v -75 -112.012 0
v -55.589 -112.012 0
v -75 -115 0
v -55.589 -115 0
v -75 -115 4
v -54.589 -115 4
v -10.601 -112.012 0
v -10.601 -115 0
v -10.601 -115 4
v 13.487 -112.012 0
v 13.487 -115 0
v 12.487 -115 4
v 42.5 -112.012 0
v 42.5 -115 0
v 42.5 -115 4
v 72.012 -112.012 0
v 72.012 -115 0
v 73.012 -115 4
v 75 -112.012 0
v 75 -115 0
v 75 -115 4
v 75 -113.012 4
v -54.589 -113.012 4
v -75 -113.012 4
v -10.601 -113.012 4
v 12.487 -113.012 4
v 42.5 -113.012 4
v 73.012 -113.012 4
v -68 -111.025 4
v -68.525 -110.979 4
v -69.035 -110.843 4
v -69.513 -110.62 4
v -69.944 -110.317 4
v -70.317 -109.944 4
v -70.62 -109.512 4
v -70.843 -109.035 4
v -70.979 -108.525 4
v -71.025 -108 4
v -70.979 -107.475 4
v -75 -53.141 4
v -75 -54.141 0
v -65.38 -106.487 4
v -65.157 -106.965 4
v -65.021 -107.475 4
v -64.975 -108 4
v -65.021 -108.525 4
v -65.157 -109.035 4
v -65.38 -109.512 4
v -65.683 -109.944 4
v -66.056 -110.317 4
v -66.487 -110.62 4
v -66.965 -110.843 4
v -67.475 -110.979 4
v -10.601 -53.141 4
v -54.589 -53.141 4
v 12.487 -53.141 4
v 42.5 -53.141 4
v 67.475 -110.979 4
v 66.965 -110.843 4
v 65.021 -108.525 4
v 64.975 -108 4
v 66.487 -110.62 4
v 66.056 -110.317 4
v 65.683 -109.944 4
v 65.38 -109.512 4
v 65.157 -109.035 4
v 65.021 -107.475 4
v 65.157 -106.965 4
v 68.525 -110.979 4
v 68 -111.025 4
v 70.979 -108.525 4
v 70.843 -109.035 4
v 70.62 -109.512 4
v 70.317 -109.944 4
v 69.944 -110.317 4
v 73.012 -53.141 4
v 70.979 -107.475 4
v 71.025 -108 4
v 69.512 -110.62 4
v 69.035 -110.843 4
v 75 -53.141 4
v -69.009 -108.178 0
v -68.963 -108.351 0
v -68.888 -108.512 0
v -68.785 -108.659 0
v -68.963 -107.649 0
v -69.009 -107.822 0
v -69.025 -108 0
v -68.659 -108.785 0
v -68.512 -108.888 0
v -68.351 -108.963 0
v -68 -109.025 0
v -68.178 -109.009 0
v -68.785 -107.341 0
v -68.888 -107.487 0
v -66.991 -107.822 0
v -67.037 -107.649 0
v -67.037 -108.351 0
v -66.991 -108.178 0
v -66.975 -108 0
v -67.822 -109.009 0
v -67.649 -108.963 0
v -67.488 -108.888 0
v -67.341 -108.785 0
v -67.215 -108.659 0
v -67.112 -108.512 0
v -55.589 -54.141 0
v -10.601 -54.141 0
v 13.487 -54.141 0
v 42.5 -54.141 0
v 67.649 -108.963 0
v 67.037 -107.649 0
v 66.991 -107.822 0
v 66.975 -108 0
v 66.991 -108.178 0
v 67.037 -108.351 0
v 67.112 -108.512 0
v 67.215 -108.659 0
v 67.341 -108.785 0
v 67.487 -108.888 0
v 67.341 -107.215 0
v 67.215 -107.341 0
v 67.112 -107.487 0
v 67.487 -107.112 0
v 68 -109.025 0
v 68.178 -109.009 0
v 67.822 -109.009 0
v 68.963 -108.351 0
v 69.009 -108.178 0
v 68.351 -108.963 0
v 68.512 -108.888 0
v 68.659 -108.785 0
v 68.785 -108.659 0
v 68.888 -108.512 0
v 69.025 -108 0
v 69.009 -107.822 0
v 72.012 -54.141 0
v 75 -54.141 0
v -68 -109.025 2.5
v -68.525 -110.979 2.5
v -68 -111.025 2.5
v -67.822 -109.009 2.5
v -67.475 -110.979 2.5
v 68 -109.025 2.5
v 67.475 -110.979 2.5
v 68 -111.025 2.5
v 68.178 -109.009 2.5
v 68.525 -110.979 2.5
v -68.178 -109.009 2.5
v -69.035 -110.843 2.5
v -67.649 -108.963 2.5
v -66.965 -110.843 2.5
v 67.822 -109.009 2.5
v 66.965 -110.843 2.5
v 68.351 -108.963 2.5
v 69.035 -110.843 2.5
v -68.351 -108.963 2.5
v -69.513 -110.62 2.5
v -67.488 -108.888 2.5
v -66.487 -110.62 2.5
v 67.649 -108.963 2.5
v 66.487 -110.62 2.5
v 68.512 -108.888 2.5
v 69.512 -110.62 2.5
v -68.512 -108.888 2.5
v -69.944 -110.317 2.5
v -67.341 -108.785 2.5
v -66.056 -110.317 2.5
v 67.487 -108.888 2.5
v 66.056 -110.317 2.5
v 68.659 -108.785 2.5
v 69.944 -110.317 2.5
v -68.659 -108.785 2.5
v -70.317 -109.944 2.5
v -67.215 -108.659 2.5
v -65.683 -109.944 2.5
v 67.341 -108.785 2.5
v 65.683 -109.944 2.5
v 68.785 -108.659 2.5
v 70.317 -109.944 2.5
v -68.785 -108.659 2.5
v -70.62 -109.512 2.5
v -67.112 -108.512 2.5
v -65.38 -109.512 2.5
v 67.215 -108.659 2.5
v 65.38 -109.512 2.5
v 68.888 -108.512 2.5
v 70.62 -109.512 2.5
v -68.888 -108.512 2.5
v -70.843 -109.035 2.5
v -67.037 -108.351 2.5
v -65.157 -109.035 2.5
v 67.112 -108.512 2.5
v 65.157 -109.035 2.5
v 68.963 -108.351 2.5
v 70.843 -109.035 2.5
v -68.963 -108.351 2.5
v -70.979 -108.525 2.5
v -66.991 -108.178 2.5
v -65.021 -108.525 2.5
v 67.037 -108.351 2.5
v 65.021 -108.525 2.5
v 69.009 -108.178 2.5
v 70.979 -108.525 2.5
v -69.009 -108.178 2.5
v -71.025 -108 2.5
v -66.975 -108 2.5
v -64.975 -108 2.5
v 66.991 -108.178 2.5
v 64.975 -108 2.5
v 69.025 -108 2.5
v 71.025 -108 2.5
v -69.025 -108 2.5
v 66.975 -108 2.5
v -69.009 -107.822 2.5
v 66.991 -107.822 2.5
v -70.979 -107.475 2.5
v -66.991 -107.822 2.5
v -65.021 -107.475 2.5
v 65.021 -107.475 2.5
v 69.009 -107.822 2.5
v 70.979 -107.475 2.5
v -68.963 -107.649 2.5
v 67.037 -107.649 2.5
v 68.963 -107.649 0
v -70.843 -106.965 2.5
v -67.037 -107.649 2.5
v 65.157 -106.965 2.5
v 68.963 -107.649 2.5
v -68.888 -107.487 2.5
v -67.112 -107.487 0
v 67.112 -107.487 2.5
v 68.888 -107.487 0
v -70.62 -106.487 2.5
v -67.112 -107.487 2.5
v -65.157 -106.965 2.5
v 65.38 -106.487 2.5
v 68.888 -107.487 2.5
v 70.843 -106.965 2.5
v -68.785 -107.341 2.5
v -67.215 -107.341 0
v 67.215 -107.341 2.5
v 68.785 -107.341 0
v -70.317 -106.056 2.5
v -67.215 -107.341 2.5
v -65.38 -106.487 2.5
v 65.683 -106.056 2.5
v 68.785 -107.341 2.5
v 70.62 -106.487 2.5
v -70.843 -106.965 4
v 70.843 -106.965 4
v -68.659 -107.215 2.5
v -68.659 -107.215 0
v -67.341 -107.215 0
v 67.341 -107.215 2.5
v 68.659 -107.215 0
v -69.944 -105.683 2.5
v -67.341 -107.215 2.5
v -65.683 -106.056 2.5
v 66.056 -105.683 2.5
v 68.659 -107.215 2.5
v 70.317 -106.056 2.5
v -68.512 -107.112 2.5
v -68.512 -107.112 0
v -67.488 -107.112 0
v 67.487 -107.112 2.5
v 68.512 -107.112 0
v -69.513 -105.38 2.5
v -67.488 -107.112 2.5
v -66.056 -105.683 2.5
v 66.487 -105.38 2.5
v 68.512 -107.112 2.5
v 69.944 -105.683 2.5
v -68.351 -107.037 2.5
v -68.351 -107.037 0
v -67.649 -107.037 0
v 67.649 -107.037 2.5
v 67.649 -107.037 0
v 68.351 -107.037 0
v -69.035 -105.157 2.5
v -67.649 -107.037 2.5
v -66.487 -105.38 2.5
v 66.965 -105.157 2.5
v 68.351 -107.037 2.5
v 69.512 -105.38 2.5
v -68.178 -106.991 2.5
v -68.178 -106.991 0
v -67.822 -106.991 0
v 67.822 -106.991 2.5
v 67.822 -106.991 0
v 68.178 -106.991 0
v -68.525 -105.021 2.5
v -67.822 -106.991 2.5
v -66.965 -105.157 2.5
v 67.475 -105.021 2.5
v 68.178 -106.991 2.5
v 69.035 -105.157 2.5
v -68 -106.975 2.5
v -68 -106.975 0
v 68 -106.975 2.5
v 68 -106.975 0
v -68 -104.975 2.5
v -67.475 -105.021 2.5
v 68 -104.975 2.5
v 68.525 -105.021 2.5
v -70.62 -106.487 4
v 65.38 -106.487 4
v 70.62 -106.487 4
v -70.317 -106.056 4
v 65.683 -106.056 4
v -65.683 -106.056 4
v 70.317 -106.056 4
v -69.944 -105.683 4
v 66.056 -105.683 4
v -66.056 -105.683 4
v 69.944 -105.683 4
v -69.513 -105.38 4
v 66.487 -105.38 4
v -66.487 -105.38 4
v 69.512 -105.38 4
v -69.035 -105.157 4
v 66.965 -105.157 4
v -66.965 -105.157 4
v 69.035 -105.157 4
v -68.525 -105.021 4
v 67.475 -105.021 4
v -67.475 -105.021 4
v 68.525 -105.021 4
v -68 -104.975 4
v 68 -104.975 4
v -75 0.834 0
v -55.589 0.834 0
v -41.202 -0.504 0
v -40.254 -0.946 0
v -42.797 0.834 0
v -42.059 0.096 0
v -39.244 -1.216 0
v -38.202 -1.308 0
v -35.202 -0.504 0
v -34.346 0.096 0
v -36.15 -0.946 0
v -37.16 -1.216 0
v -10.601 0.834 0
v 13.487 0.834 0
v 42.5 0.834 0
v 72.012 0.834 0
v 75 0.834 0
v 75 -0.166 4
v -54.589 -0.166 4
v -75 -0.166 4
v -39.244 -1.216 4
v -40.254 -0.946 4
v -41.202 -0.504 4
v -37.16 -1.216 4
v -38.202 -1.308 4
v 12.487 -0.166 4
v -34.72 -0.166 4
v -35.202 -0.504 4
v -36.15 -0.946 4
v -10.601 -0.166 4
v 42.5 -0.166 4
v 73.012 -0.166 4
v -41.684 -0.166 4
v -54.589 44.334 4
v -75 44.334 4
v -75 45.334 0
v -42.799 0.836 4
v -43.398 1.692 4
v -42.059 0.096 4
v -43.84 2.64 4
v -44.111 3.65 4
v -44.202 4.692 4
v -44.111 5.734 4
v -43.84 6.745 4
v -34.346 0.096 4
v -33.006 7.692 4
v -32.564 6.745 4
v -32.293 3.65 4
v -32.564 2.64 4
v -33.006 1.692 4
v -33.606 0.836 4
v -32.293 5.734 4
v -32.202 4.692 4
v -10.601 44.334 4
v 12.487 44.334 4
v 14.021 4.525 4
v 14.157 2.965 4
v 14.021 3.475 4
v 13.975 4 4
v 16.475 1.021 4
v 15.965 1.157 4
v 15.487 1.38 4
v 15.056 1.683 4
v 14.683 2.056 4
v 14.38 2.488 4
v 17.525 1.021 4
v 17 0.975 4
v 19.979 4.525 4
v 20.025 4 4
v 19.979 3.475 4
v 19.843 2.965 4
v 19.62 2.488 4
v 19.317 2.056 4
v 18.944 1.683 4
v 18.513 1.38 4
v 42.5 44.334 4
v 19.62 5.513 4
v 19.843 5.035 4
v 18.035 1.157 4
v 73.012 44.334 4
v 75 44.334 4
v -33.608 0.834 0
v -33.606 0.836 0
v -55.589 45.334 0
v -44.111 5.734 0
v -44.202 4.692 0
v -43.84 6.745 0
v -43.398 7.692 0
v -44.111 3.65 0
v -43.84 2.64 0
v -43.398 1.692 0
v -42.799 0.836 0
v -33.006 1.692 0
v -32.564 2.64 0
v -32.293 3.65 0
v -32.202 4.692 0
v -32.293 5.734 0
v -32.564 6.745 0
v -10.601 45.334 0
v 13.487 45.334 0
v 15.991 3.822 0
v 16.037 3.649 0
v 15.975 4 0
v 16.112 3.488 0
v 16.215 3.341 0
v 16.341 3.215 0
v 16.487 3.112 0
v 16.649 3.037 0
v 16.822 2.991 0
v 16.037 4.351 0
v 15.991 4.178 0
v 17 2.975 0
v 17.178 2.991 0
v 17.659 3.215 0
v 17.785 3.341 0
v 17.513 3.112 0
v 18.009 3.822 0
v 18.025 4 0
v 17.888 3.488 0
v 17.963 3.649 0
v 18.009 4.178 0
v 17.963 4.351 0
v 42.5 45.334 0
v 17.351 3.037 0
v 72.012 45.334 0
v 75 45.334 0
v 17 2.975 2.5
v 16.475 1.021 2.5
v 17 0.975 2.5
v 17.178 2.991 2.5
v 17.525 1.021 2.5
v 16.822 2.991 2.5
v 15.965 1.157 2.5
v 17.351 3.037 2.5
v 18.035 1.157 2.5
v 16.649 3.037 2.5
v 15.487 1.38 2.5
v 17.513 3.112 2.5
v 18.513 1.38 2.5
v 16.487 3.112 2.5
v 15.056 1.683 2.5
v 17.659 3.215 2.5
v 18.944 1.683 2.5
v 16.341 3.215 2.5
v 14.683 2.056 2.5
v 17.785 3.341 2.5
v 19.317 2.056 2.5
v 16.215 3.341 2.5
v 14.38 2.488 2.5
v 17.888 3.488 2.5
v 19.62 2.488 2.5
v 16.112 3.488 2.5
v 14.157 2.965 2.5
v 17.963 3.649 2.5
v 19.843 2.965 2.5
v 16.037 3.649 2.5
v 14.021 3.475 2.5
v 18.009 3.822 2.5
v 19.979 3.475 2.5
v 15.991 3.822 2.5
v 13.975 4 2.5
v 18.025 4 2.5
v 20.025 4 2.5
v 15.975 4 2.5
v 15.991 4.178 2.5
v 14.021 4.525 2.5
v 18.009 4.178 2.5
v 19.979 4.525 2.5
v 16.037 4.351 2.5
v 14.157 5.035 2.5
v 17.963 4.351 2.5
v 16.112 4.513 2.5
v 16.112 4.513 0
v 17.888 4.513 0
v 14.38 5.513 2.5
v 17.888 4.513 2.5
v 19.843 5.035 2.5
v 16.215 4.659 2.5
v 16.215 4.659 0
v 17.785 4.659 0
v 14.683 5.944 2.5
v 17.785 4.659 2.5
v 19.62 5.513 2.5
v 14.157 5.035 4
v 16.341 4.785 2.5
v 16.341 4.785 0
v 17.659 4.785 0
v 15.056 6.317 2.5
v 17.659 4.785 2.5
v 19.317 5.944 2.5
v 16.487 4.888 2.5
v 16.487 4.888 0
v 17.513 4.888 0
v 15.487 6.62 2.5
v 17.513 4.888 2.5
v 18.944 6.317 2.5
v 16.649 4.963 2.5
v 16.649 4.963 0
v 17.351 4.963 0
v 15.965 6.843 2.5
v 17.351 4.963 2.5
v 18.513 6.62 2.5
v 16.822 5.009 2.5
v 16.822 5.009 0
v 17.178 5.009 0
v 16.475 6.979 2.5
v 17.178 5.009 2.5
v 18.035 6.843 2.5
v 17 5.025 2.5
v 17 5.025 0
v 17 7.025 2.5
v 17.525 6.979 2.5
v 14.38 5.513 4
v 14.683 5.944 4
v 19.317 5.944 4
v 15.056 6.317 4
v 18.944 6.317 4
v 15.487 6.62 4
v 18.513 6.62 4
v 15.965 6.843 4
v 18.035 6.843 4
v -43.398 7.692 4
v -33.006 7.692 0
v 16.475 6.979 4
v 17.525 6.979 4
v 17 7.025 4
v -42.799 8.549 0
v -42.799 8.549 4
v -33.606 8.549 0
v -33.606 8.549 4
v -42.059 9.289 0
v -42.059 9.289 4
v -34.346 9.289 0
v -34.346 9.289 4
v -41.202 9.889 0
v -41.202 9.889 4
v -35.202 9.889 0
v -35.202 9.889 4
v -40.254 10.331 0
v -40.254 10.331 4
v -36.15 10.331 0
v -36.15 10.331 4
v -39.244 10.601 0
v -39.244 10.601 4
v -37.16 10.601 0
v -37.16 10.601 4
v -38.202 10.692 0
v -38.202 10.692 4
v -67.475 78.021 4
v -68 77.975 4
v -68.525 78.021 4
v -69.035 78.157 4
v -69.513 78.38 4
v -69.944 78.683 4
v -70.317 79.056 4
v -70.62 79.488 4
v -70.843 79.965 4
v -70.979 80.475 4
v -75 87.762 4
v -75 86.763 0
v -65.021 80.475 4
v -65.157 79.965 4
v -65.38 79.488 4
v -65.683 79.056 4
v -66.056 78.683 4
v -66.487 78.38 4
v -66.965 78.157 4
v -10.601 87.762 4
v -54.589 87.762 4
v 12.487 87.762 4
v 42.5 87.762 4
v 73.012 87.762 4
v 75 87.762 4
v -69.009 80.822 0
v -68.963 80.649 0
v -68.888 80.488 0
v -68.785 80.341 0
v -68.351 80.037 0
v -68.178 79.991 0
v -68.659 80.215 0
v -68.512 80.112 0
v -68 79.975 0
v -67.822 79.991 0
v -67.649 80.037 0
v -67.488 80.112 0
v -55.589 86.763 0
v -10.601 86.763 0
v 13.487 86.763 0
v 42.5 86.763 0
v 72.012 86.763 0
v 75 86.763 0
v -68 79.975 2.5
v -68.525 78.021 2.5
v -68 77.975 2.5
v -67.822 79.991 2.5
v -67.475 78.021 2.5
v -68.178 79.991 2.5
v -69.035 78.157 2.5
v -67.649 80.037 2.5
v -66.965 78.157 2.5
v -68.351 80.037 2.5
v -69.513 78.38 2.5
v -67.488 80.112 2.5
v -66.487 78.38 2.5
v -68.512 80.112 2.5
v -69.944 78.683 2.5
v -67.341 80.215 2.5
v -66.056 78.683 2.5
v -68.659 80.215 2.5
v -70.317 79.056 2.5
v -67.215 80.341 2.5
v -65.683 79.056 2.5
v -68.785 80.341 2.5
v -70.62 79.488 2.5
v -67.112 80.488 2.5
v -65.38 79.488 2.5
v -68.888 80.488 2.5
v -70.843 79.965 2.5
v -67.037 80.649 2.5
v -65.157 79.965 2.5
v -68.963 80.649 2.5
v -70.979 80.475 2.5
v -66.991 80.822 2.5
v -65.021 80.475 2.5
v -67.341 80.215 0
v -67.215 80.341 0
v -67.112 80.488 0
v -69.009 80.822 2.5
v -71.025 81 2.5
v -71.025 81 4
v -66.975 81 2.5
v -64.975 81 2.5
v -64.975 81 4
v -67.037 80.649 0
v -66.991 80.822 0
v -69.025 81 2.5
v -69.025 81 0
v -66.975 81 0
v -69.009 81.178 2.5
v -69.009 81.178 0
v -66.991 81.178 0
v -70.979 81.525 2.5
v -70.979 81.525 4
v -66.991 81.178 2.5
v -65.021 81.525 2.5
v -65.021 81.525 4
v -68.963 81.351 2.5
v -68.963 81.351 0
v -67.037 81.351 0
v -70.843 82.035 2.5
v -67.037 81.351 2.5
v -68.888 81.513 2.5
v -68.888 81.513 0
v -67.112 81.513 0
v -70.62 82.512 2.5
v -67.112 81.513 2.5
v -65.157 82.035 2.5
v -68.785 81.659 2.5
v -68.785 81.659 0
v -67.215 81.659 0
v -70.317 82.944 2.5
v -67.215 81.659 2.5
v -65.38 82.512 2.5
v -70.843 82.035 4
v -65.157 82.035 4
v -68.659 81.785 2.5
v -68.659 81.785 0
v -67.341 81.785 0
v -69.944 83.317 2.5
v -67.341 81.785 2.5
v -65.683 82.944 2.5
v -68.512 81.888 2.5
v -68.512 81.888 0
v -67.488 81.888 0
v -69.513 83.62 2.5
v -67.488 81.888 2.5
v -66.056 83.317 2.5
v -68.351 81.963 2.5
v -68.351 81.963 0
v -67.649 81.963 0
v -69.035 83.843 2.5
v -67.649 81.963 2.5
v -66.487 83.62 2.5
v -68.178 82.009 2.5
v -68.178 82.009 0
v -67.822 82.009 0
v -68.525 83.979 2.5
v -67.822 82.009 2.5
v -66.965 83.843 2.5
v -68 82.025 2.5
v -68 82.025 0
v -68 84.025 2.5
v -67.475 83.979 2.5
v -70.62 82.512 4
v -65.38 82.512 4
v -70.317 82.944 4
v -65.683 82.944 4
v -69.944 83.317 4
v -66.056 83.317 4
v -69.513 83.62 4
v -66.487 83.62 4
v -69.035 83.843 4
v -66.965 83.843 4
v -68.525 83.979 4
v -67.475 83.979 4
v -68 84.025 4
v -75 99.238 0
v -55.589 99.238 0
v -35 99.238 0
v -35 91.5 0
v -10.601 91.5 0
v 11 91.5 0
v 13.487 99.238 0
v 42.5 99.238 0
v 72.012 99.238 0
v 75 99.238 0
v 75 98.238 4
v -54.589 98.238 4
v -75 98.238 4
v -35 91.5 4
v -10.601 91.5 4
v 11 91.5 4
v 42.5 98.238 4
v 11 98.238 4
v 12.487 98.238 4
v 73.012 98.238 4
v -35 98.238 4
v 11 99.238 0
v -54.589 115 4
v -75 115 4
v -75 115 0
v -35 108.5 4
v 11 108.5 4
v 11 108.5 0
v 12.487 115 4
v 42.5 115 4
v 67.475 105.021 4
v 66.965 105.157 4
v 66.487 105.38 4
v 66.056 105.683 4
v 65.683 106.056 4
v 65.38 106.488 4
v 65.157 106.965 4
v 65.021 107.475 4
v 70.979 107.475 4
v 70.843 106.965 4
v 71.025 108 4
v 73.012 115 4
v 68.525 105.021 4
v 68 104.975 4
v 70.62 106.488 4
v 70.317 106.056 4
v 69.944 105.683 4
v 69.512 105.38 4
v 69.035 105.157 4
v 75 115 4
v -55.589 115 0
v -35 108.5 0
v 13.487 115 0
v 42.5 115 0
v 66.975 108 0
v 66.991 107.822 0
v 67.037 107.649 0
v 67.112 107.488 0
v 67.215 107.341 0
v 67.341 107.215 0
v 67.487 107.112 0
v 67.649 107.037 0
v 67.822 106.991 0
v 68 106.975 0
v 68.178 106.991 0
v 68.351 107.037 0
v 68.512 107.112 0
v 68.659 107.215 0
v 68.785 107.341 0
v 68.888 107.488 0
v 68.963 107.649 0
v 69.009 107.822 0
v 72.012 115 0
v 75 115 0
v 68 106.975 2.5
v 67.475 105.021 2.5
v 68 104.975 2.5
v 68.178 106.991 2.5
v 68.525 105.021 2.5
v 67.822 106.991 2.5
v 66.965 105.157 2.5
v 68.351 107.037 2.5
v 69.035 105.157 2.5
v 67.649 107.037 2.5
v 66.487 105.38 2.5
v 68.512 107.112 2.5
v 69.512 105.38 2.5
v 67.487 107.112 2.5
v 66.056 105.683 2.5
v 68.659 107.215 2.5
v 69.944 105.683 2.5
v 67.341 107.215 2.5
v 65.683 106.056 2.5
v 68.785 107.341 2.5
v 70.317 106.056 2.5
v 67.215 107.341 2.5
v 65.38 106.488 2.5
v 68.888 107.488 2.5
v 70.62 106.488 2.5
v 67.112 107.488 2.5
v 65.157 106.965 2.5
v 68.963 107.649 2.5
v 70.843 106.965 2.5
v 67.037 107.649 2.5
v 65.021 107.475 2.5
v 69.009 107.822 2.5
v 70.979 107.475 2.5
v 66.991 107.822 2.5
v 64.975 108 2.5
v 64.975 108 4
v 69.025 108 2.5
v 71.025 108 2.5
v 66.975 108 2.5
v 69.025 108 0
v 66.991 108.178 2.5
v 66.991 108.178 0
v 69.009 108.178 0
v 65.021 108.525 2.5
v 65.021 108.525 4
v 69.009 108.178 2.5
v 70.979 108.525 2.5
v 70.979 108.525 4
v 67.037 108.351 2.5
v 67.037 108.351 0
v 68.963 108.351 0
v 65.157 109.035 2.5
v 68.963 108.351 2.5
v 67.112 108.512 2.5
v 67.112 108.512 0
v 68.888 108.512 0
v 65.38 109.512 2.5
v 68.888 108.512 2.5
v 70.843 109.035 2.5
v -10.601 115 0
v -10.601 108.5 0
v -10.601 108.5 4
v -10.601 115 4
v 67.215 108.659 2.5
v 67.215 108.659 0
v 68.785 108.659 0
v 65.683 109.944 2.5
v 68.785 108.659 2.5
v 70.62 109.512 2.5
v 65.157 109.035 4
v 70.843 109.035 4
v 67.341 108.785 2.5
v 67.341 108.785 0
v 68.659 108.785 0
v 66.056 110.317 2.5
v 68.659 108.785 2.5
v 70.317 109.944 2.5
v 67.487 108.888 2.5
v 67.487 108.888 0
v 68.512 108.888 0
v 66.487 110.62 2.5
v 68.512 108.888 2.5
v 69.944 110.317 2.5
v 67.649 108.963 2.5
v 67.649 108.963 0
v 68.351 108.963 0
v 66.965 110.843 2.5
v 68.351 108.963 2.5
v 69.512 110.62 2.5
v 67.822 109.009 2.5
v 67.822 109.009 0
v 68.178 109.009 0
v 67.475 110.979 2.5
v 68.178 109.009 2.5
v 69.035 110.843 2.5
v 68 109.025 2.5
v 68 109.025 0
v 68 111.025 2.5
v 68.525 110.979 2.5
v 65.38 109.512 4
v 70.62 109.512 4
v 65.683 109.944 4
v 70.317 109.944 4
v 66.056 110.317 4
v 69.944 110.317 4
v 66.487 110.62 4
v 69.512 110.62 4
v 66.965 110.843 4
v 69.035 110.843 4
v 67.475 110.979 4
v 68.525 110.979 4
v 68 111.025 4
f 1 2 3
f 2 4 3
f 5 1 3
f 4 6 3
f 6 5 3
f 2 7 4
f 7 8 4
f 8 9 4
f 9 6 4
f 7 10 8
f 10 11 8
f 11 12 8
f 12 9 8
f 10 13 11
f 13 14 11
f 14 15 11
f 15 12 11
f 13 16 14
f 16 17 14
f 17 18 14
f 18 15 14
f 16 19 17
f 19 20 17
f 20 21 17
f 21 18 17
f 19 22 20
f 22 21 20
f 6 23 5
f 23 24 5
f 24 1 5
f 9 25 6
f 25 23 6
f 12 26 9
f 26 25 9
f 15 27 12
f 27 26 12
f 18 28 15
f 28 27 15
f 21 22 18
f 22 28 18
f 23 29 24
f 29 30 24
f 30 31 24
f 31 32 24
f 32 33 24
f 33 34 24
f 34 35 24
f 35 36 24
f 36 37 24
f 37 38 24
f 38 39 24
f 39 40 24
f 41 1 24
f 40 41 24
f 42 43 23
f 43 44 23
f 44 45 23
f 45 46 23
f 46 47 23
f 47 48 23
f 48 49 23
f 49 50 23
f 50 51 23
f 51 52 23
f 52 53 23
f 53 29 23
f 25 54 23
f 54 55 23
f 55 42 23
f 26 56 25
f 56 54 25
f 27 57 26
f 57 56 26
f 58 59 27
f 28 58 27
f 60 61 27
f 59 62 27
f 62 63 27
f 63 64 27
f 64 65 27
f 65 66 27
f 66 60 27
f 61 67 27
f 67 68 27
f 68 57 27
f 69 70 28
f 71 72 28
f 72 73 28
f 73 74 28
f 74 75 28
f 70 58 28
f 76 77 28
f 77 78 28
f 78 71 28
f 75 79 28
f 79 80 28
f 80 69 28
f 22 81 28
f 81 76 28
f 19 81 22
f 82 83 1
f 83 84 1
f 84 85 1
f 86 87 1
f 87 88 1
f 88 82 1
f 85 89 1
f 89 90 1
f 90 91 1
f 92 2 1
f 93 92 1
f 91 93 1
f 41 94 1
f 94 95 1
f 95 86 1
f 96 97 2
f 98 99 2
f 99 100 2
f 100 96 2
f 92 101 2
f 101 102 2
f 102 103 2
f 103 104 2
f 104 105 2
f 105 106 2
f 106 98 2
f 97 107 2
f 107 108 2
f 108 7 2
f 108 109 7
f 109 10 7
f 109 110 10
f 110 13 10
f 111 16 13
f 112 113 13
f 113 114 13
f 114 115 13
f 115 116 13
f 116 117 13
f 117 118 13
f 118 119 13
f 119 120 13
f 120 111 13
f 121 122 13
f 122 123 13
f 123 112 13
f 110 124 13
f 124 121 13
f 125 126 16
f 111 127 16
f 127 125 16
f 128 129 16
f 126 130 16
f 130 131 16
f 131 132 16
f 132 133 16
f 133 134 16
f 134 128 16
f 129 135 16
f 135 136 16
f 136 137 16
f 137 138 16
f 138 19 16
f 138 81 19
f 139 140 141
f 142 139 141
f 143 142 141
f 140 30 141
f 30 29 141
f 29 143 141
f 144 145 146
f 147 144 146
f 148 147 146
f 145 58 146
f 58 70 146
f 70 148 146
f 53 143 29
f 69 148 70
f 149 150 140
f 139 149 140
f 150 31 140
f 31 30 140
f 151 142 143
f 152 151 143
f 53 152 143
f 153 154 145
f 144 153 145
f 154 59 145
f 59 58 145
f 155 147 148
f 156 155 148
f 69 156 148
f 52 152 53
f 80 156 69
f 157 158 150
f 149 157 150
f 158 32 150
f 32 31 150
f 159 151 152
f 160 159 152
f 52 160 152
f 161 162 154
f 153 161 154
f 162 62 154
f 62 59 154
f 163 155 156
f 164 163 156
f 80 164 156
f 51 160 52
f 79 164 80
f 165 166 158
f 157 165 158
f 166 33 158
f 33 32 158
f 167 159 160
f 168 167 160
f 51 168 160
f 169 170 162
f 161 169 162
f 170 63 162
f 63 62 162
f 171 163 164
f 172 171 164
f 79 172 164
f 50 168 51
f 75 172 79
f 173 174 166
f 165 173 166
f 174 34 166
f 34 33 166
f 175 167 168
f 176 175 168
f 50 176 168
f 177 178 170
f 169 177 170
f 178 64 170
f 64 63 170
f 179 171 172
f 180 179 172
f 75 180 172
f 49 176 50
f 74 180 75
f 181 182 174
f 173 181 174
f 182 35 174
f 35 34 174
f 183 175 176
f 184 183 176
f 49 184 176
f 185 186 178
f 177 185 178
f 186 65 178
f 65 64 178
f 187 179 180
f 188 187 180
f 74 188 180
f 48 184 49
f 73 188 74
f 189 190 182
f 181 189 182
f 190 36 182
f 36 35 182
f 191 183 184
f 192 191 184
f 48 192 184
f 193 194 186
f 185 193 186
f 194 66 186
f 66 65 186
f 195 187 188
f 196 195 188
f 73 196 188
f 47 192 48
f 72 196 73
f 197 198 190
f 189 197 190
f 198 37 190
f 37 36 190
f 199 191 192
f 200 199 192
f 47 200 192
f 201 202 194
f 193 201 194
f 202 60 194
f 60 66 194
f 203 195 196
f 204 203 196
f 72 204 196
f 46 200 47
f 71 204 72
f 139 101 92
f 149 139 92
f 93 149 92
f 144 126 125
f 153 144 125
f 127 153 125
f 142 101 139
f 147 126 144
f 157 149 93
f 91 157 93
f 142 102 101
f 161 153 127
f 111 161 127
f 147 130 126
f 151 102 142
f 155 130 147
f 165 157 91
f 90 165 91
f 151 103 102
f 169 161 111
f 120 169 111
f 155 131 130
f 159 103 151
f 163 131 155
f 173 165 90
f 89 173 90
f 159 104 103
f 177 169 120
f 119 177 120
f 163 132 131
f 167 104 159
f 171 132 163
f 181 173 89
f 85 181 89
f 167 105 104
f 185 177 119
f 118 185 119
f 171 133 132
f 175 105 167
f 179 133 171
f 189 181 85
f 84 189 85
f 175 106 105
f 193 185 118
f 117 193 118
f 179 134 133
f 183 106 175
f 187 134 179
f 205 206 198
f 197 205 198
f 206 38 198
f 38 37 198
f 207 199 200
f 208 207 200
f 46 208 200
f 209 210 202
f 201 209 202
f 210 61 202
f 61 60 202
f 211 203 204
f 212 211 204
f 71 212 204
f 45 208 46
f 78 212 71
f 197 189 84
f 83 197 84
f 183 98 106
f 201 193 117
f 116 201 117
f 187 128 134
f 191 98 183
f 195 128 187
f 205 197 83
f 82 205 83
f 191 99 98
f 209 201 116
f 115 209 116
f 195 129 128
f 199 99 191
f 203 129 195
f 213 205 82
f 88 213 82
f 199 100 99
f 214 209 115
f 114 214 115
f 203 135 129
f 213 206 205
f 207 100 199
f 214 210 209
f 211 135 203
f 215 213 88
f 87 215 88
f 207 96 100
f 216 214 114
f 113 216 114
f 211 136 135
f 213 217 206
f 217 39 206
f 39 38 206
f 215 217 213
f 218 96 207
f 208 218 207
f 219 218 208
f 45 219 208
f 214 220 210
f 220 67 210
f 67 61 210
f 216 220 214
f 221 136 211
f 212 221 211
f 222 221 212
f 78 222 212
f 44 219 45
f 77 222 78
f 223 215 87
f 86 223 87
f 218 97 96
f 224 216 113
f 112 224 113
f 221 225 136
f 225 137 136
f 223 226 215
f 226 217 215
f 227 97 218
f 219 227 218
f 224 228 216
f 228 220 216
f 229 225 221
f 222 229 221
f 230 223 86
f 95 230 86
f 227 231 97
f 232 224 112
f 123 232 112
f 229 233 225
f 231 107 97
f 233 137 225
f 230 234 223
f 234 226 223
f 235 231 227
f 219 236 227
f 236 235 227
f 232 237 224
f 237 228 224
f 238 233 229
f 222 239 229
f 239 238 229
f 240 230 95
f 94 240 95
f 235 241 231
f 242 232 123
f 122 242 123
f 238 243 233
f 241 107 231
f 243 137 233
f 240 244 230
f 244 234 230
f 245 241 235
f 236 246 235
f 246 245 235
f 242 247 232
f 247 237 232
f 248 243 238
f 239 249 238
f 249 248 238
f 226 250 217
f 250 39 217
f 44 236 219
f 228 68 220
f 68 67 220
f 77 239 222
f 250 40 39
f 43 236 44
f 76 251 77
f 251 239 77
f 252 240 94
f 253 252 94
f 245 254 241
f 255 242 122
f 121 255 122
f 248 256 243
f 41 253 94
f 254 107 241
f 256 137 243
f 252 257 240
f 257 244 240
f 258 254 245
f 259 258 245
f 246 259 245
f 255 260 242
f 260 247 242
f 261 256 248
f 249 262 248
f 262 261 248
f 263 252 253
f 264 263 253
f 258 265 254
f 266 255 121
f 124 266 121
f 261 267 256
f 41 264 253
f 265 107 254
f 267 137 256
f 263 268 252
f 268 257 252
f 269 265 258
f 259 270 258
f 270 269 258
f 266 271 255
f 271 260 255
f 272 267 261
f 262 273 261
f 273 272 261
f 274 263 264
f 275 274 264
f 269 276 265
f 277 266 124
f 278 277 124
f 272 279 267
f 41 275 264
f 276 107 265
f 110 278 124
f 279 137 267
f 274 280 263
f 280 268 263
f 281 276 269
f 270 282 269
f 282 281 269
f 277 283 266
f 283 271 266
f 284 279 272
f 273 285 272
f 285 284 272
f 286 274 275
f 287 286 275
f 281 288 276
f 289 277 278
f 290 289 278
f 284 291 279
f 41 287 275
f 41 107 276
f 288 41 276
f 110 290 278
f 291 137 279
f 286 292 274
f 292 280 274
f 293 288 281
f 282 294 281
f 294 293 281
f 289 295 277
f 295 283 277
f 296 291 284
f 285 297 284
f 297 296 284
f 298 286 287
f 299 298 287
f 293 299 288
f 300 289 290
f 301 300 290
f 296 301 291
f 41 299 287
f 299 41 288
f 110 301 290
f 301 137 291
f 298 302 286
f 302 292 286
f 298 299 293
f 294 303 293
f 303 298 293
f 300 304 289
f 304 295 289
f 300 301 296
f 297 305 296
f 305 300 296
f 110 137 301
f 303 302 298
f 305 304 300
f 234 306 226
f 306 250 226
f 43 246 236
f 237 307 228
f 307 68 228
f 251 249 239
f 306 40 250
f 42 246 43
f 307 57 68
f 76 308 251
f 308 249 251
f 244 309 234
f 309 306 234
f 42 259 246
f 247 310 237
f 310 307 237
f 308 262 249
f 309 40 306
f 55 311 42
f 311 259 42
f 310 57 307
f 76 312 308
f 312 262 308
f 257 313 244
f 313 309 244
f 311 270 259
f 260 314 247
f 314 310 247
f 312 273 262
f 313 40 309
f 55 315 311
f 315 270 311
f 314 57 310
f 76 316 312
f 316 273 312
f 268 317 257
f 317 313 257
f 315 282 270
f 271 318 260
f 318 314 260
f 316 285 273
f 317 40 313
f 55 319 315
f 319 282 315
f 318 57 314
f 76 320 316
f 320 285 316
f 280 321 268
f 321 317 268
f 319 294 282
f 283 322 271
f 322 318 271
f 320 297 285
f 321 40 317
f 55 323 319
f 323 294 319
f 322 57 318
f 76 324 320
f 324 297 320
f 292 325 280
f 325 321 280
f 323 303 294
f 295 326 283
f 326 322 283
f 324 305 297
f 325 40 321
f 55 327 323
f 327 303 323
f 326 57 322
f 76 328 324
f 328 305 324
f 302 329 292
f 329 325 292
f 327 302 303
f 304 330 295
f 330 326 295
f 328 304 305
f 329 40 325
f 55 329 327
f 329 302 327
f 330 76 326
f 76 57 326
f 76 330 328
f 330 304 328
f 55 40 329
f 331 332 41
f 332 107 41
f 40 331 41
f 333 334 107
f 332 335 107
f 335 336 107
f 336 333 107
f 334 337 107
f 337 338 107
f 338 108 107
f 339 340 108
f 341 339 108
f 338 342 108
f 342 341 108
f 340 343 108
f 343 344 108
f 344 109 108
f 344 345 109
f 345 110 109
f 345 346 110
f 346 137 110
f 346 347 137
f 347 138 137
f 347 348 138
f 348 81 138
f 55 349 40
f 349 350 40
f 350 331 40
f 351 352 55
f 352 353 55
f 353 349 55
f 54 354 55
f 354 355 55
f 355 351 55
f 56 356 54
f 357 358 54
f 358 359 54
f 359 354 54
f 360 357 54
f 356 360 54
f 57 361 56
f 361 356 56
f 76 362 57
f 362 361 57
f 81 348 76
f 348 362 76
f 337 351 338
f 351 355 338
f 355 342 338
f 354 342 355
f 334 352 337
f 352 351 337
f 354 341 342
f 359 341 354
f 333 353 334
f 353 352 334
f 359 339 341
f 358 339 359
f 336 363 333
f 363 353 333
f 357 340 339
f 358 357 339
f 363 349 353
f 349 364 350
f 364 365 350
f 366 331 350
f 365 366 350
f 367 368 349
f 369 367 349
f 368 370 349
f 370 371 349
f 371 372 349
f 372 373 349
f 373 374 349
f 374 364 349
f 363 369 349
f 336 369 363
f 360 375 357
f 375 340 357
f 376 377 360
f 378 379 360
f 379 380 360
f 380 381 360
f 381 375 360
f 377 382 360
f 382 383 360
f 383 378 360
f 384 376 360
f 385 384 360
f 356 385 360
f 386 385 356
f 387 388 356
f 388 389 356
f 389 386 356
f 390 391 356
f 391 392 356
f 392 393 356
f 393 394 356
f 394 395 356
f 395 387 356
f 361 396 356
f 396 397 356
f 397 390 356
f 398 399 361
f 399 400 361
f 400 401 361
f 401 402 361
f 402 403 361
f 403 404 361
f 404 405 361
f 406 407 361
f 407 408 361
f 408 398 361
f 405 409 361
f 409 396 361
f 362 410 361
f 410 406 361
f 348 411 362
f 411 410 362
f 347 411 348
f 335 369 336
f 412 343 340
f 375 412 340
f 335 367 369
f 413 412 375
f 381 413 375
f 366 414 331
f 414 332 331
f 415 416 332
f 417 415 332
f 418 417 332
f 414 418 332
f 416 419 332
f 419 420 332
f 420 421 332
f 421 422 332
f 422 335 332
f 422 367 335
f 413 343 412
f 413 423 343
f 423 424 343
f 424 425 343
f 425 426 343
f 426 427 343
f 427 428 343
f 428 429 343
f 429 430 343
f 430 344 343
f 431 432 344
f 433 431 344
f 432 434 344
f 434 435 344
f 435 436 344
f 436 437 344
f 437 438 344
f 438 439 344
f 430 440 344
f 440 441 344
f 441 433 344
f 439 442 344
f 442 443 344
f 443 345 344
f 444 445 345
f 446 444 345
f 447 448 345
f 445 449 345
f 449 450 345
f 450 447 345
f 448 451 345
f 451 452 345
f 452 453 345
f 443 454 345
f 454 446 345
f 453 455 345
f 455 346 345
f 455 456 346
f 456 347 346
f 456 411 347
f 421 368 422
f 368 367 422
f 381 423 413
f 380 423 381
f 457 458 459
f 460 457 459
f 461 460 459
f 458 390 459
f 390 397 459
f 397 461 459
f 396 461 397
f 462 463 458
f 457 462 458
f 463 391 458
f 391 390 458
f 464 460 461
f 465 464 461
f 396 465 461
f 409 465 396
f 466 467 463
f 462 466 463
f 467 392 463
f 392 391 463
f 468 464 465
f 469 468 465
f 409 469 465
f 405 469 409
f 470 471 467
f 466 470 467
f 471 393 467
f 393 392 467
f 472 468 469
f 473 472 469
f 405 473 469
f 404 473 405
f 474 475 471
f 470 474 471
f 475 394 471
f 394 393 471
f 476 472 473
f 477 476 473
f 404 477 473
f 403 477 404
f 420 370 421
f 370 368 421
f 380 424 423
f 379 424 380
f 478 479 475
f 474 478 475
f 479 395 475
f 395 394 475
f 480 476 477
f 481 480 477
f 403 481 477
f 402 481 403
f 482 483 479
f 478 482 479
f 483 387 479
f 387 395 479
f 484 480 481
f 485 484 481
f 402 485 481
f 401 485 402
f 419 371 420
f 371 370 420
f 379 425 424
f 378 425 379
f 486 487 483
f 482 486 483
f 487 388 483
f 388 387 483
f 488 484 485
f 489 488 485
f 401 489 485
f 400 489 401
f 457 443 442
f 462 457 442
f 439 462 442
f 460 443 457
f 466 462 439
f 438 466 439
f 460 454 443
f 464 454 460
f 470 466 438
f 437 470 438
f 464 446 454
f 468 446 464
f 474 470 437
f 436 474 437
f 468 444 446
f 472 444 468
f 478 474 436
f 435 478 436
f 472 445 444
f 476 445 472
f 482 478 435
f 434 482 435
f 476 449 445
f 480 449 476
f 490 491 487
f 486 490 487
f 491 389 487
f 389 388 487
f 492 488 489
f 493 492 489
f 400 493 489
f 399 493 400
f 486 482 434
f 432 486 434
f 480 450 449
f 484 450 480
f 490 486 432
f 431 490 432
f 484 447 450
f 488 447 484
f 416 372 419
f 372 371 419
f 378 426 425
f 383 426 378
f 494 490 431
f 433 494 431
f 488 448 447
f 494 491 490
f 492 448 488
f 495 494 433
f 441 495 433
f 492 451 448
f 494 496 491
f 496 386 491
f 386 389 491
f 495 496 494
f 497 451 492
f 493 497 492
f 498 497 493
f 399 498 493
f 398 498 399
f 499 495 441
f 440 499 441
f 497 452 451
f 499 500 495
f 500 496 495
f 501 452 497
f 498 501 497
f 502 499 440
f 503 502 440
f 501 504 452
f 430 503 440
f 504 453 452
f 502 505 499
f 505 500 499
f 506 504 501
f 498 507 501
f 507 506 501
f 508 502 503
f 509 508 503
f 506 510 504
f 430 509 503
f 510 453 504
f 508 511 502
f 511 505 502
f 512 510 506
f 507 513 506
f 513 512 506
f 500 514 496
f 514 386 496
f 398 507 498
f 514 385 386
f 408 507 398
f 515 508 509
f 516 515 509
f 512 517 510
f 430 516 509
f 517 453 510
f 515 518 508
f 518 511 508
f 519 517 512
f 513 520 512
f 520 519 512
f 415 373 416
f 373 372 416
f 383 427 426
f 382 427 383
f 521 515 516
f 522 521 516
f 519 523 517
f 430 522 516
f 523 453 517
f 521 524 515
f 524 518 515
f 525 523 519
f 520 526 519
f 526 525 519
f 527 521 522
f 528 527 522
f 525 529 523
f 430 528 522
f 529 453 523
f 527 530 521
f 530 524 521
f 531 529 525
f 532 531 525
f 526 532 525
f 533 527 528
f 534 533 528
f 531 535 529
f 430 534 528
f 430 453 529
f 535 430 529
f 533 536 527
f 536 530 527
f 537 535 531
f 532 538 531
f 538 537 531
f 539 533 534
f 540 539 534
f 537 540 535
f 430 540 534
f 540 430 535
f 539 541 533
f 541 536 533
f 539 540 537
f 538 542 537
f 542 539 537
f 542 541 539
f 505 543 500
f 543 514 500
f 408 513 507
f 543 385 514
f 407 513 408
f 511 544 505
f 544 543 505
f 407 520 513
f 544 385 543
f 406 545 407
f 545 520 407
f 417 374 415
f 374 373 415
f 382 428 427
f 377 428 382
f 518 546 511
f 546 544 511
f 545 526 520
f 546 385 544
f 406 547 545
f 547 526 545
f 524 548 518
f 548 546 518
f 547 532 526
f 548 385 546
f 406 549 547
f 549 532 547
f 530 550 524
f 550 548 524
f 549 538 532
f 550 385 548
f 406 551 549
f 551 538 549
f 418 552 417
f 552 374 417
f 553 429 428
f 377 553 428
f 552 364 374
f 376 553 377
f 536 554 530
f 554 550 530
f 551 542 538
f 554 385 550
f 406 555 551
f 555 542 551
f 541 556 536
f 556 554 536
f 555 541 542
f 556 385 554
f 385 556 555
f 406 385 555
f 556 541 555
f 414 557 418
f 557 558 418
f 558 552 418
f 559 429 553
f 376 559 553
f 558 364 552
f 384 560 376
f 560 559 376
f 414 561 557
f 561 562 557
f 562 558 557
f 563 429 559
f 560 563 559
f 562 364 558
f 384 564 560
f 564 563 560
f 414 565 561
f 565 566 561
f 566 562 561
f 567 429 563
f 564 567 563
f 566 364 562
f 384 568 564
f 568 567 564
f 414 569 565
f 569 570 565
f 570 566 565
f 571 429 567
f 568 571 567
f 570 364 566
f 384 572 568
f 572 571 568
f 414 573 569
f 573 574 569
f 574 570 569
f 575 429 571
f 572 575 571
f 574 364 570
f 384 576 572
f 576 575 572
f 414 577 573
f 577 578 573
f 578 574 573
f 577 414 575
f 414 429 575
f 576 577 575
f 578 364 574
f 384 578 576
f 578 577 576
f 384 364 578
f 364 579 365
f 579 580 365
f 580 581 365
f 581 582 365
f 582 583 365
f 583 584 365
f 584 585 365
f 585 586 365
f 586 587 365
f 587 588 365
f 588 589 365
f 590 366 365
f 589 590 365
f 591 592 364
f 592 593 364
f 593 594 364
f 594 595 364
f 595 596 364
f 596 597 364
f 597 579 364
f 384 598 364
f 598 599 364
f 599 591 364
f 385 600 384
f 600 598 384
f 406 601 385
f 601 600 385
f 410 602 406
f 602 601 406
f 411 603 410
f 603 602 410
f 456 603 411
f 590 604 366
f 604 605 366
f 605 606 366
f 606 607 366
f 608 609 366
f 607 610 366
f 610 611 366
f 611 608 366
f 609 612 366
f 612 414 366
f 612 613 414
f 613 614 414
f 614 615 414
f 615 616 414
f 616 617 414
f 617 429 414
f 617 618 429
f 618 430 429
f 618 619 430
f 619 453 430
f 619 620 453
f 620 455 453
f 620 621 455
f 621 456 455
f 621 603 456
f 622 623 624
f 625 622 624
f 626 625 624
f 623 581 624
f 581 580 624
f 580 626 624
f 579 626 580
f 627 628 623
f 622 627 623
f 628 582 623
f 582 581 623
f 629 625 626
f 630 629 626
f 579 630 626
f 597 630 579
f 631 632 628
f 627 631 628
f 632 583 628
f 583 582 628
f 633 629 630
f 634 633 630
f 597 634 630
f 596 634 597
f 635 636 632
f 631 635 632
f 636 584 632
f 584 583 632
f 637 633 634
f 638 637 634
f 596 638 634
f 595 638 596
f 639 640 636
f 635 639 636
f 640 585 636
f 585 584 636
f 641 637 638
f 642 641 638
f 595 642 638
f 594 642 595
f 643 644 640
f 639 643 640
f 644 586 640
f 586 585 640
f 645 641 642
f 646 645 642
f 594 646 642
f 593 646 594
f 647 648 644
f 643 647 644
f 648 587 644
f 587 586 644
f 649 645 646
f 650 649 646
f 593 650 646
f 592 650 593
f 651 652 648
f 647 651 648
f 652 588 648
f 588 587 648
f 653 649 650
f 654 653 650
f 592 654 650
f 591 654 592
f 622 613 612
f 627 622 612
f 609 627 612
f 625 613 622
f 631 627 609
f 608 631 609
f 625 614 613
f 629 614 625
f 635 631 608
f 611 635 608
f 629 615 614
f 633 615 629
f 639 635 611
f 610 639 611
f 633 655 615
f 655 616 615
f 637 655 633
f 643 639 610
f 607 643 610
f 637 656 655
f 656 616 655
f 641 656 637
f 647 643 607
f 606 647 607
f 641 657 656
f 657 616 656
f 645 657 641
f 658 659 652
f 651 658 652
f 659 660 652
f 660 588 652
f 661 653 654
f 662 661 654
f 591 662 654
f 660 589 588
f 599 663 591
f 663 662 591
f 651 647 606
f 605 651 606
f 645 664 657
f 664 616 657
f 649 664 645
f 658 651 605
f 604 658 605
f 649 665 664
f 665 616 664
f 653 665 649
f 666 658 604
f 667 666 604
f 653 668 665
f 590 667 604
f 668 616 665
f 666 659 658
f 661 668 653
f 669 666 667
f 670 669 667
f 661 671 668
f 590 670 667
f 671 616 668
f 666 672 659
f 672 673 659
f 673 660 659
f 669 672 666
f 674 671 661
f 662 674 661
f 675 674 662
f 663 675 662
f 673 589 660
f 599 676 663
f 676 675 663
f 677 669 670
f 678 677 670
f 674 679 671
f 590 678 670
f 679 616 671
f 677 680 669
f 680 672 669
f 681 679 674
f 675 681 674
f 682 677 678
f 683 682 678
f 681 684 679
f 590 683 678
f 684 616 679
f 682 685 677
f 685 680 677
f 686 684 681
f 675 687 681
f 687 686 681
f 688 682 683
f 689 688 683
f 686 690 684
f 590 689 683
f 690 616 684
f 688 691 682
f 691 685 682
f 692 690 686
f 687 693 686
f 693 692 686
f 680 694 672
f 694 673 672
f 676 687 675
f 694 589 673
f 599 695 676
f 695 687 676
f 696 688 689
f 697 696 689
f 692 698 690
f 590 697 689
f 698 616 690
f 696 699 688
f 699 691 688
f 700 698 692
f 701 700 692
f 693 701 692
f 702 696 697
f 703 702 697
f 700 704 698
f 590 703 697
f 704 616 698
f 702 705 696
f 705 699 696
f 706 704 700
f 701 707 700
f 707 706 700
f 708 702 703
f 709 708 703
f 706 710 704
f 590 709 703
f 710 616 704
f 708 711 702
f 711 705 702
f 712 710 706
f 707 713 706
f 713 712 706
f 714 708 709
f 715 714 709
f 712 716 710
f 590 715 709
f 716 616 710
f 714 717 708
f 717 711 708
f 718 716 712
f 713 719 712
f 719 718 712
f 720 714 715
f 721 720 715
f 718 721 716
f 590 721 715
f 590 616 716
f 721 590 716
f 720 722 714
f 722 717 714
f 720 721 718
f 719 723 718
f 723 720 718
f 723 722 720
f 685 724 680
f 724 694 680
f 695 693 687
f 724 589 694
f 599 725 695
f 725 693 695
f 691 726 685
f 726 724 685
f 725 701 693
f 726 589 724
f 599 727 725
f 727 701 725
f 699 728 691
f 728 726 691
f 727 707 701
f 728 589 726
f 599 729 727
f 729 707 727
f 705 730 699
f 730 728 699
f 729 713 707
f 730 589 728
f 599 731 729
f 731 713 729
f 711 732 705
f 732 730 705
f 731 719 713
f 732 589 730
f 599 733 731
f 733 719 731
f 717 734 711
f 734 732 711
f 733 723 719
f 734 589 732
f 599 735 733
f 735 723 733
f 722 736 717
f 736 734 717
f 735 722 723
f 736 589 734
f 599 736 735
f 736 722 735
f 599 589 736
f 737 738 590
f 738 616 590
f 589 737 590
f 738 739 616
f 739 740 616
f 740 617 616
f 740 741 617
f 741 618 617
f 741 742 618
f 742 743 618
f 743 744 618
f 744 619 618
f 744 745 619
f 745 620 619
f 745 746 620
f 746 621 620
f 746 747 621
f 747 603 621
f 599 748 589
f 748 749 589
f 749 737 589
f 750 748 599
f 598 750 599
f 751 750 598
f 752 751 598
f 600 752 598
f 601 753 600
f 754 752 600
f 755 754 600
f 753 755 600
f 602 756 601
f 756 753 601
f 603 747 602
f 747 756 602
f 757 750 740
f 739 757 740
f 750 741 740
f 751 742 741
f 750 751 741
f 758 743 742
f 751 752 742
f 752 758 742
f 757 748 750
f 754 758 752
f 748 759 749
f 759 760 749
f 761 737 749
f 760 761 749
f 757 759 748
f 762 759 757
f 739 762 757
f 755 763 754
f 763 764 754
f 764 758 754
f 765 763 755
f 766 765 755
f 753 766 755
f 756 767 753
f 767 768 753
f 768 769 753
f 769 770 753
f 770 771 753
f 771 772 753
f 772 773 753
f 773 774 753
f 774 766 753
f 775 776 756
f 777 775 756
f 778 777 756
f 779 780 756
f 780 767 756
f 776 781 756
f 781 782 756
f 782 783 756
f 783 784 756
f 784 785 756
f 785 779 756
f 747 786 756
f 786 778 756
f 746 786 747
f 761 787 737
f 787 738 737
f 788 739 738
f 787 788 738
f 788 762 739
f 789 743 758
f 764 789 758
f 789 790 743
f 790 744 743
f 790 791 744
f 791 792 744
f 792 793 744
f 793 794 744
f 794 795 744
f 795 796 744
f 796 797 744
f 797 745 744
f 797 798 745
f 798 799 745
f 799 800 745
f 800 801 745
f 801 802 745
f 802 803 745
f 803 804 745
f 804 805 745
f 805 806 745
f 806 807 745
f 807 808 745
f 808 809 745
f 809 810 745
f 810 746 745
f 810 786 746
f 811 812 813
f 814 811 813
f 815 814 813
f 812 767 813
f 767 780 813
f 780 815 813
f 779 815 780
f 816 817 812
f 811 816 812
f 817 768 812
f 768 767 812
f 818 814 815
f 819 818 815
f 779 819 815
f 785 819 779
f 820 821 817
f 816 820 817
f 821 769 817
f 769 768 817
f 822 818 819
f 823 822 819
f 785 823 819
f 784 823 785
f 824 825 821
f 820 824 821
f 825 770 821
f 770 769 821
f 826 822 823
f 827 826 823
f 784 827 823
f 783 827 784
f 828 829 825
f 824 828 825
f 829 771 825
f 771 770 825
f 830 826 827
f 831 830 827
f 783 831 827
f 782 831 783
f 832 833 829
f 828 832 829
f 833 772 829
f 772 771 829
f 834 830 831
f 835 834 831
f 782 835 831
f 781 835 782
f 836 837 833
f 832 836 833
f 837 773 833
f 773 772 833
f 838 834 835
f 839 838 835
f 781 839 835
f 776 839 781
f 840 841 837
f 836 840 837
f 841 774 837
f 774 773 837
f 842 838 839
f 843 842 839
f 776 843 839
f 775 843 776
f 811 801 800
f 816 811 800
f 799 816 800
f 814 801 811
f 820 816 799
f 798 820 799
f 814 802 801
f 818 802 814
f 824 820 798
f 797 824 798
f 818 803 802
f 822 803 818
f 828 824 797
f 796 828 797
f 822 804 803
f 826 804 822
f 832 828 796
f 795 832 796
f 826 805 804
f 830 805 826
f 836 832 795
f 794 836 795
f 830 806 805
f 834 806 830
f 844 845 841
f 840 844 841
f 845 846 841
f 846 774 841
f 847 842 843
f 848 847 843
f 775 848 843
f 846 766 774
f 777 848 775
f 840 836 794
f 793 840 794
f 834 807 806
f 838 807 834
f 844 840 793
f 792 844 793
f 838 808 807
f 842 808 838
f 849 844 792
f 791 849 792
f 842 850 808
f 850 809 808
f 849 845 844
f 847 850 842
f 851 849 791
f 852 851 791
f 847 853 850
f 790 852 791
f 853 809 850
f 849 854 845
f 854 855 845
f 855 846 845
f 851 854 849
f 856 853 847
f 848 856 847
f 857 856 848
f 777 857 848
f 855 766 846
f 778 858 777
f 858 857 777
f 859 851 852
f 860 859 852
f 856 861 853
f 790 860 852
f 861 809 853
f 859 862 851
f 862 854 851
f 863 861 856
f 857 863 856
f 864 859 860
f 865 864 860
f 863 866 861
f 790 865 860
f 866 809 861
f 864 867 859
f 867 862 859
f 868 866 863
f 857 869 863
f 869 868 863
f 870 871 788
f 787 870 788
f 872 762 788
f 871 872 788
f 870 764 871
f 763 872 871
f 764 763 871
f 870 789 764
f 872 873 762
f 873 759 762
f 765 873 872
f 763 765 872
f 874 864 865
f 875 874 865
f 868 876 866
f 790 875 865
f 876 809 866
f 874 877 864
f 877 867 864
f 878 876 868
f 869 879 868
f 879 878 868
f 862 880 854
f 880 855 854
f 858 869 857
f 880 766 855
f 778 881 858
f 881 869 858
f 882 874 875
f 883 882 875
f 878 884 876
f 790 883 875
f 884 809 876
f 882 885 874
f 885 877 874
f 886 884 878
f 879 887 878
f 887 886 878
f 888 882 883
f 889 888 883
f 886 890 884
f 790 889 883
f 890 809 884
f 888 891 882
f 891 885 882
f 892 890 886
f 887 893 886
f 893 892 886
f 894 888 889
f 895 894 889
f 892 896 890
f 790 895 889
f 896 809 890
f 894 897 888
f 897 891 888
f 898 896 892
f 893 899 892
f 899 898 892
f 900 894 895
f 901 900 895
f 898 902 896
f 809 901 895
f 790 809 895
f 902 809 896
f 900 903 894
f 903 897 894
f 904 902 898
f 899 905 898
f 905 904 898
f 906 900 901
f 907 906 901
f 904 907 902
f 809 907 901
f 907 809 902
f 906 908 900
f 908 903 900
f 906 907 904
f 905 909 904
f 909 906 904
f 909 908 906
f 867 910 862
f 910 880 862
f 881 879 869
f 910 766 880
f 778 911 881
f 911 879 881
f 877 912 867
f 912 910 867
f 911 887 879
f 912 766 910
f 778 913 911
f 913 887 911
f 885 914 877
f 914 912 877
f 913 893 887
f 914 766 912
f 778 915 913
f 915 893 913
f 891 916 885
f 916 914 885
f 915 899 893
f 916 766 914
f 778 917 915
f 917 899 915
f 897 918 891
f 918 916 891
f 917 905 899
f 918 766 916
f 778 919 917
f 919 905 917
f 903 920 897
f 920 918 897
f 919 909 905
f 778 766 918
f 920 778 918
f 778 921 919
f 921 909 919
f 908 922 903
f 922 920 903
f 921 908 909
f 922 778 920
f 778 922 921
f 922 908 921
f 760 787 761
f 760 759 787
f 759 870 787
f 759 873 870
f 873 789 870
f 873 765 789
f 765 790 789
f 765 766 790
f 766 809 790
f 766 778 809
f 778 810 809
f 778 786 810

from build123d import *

# Parameters (mm, degrees)
SKETCH1_W                      = 150
SKETCH1_H                      = 230
BOSS_EXTRUDE1_DEPTH            = 4
TAP_DRILL_FOR_M2_5X0_45_TAP2_D = 2.05
SKETCH8_R                      = 3.025
CUT_EXTRUDE2_DEPTH             = 1.5
CUT_EXTRUDE3_REACH             = 139.354
SKETCH9_W                      = 46
SKETCH9_H                      = 17
CUT_EXTRUDE3_DIRECTION_2_DEPTH = 138.353558381
CUT_EXTRUDE4_REACH             = 139.354
SKETCH10_R                     = 6


with BuildPart() as part:
    # Sketch1 → Boss-Extrude1 (new body)
    with BuildSketch(Plane.XY):
        Rectangle(SKETCH1_W, SKETCH1_H)
    extrude(amount=BOSS_EXTRUDE1_DEPTH)

    # Tap Drill for M2.5x0.45 Tap2 (through all)
    with Locations(Plane(origin=(68, 108, 0), x_dir=(-1, 0, 0), z_dir=(0, 0, -1))):
        with Locations((0, 0), (136, -27), (0, -216), (136, -216), (51, -104)):
            Hole(TAP_DRILL_FOR_M2_5X0_45_TAP2_D / 2)

    # Sketch8 → Cut-Extrude2 (cut)
    with BuildSketch(Plane.XY.offset(4)):
        with Locations((-68, 81)):
            Circle(SKETCH8_R)
        with Locations((68, 108)):
            Circle(SKETCH8_R)
        with Locations((-68, -108)):
            Circle(SKETCH8_R)
        with Locations((68, -108)):
            Circle(SKETCH8_R)
        with Locations((17, 4)):
            Circle(SKETCH8_R)
    extrude(amount=-CUT_EXTRUDE2_DEPTH, mode=Mode.SUBTRACT)

    # Sketch9 → Cut-Extrude3 (cut, up to next)
    with BuildSketch(Plane.XY.offset(4), mode=Mode.PRIVATE) as cut_extrude3_sk1:
        with Locations((-12, 100)):
            Rectangle(SKETCH9_W, SKETCH9_H)
    cut_extrude3_tool1 = extrude(cut_extrude3_sk1.sketch, amount=-CUT_EXTRUDE3_REACH, mode=Mode.PRIVATE) & part.part
    add(cut_extrude3_tool1.solids().sort_by_distance((-12, 100, 4))[0], mode=Mode.SUBTRACT)

    # Sketch9 → Cut-Extrude3 direction 2 (cut)
    with BuildSketch(Plane.XY.offset(4)):
        with Locations((-12, 100)):
            Rectangle(SKETCH9_W, SKETCH9_H)
    extrude(amount=CUT_EXTRUDE3_DIRECTION_2_DEPTH, mode=Mode.SUBTRACT)

    # Sketch10 → Cut-Extrude4 (cut, up to next)
    with BuildSketch(Plane.XY.offset(4), mode=Mode.PRIVATE) as cut_extrude4_sk1:
        with Locations((-38.202297392, 4.692384057)):
            Circle(SKETCH10_R)
    cut_extrude4_tool1 = extrude(cut_extrude4_sk1.sketch, amount=-CUT_EXTRUDE4_REACH, mode=Mode.PRIVATE) & part.part
    add(cut_extrude4_tool1.solids().sort_by_distance((-38.202297, 4.692384, 4))[0], mode=Mode.SUBTRACT)


solid = part.part
